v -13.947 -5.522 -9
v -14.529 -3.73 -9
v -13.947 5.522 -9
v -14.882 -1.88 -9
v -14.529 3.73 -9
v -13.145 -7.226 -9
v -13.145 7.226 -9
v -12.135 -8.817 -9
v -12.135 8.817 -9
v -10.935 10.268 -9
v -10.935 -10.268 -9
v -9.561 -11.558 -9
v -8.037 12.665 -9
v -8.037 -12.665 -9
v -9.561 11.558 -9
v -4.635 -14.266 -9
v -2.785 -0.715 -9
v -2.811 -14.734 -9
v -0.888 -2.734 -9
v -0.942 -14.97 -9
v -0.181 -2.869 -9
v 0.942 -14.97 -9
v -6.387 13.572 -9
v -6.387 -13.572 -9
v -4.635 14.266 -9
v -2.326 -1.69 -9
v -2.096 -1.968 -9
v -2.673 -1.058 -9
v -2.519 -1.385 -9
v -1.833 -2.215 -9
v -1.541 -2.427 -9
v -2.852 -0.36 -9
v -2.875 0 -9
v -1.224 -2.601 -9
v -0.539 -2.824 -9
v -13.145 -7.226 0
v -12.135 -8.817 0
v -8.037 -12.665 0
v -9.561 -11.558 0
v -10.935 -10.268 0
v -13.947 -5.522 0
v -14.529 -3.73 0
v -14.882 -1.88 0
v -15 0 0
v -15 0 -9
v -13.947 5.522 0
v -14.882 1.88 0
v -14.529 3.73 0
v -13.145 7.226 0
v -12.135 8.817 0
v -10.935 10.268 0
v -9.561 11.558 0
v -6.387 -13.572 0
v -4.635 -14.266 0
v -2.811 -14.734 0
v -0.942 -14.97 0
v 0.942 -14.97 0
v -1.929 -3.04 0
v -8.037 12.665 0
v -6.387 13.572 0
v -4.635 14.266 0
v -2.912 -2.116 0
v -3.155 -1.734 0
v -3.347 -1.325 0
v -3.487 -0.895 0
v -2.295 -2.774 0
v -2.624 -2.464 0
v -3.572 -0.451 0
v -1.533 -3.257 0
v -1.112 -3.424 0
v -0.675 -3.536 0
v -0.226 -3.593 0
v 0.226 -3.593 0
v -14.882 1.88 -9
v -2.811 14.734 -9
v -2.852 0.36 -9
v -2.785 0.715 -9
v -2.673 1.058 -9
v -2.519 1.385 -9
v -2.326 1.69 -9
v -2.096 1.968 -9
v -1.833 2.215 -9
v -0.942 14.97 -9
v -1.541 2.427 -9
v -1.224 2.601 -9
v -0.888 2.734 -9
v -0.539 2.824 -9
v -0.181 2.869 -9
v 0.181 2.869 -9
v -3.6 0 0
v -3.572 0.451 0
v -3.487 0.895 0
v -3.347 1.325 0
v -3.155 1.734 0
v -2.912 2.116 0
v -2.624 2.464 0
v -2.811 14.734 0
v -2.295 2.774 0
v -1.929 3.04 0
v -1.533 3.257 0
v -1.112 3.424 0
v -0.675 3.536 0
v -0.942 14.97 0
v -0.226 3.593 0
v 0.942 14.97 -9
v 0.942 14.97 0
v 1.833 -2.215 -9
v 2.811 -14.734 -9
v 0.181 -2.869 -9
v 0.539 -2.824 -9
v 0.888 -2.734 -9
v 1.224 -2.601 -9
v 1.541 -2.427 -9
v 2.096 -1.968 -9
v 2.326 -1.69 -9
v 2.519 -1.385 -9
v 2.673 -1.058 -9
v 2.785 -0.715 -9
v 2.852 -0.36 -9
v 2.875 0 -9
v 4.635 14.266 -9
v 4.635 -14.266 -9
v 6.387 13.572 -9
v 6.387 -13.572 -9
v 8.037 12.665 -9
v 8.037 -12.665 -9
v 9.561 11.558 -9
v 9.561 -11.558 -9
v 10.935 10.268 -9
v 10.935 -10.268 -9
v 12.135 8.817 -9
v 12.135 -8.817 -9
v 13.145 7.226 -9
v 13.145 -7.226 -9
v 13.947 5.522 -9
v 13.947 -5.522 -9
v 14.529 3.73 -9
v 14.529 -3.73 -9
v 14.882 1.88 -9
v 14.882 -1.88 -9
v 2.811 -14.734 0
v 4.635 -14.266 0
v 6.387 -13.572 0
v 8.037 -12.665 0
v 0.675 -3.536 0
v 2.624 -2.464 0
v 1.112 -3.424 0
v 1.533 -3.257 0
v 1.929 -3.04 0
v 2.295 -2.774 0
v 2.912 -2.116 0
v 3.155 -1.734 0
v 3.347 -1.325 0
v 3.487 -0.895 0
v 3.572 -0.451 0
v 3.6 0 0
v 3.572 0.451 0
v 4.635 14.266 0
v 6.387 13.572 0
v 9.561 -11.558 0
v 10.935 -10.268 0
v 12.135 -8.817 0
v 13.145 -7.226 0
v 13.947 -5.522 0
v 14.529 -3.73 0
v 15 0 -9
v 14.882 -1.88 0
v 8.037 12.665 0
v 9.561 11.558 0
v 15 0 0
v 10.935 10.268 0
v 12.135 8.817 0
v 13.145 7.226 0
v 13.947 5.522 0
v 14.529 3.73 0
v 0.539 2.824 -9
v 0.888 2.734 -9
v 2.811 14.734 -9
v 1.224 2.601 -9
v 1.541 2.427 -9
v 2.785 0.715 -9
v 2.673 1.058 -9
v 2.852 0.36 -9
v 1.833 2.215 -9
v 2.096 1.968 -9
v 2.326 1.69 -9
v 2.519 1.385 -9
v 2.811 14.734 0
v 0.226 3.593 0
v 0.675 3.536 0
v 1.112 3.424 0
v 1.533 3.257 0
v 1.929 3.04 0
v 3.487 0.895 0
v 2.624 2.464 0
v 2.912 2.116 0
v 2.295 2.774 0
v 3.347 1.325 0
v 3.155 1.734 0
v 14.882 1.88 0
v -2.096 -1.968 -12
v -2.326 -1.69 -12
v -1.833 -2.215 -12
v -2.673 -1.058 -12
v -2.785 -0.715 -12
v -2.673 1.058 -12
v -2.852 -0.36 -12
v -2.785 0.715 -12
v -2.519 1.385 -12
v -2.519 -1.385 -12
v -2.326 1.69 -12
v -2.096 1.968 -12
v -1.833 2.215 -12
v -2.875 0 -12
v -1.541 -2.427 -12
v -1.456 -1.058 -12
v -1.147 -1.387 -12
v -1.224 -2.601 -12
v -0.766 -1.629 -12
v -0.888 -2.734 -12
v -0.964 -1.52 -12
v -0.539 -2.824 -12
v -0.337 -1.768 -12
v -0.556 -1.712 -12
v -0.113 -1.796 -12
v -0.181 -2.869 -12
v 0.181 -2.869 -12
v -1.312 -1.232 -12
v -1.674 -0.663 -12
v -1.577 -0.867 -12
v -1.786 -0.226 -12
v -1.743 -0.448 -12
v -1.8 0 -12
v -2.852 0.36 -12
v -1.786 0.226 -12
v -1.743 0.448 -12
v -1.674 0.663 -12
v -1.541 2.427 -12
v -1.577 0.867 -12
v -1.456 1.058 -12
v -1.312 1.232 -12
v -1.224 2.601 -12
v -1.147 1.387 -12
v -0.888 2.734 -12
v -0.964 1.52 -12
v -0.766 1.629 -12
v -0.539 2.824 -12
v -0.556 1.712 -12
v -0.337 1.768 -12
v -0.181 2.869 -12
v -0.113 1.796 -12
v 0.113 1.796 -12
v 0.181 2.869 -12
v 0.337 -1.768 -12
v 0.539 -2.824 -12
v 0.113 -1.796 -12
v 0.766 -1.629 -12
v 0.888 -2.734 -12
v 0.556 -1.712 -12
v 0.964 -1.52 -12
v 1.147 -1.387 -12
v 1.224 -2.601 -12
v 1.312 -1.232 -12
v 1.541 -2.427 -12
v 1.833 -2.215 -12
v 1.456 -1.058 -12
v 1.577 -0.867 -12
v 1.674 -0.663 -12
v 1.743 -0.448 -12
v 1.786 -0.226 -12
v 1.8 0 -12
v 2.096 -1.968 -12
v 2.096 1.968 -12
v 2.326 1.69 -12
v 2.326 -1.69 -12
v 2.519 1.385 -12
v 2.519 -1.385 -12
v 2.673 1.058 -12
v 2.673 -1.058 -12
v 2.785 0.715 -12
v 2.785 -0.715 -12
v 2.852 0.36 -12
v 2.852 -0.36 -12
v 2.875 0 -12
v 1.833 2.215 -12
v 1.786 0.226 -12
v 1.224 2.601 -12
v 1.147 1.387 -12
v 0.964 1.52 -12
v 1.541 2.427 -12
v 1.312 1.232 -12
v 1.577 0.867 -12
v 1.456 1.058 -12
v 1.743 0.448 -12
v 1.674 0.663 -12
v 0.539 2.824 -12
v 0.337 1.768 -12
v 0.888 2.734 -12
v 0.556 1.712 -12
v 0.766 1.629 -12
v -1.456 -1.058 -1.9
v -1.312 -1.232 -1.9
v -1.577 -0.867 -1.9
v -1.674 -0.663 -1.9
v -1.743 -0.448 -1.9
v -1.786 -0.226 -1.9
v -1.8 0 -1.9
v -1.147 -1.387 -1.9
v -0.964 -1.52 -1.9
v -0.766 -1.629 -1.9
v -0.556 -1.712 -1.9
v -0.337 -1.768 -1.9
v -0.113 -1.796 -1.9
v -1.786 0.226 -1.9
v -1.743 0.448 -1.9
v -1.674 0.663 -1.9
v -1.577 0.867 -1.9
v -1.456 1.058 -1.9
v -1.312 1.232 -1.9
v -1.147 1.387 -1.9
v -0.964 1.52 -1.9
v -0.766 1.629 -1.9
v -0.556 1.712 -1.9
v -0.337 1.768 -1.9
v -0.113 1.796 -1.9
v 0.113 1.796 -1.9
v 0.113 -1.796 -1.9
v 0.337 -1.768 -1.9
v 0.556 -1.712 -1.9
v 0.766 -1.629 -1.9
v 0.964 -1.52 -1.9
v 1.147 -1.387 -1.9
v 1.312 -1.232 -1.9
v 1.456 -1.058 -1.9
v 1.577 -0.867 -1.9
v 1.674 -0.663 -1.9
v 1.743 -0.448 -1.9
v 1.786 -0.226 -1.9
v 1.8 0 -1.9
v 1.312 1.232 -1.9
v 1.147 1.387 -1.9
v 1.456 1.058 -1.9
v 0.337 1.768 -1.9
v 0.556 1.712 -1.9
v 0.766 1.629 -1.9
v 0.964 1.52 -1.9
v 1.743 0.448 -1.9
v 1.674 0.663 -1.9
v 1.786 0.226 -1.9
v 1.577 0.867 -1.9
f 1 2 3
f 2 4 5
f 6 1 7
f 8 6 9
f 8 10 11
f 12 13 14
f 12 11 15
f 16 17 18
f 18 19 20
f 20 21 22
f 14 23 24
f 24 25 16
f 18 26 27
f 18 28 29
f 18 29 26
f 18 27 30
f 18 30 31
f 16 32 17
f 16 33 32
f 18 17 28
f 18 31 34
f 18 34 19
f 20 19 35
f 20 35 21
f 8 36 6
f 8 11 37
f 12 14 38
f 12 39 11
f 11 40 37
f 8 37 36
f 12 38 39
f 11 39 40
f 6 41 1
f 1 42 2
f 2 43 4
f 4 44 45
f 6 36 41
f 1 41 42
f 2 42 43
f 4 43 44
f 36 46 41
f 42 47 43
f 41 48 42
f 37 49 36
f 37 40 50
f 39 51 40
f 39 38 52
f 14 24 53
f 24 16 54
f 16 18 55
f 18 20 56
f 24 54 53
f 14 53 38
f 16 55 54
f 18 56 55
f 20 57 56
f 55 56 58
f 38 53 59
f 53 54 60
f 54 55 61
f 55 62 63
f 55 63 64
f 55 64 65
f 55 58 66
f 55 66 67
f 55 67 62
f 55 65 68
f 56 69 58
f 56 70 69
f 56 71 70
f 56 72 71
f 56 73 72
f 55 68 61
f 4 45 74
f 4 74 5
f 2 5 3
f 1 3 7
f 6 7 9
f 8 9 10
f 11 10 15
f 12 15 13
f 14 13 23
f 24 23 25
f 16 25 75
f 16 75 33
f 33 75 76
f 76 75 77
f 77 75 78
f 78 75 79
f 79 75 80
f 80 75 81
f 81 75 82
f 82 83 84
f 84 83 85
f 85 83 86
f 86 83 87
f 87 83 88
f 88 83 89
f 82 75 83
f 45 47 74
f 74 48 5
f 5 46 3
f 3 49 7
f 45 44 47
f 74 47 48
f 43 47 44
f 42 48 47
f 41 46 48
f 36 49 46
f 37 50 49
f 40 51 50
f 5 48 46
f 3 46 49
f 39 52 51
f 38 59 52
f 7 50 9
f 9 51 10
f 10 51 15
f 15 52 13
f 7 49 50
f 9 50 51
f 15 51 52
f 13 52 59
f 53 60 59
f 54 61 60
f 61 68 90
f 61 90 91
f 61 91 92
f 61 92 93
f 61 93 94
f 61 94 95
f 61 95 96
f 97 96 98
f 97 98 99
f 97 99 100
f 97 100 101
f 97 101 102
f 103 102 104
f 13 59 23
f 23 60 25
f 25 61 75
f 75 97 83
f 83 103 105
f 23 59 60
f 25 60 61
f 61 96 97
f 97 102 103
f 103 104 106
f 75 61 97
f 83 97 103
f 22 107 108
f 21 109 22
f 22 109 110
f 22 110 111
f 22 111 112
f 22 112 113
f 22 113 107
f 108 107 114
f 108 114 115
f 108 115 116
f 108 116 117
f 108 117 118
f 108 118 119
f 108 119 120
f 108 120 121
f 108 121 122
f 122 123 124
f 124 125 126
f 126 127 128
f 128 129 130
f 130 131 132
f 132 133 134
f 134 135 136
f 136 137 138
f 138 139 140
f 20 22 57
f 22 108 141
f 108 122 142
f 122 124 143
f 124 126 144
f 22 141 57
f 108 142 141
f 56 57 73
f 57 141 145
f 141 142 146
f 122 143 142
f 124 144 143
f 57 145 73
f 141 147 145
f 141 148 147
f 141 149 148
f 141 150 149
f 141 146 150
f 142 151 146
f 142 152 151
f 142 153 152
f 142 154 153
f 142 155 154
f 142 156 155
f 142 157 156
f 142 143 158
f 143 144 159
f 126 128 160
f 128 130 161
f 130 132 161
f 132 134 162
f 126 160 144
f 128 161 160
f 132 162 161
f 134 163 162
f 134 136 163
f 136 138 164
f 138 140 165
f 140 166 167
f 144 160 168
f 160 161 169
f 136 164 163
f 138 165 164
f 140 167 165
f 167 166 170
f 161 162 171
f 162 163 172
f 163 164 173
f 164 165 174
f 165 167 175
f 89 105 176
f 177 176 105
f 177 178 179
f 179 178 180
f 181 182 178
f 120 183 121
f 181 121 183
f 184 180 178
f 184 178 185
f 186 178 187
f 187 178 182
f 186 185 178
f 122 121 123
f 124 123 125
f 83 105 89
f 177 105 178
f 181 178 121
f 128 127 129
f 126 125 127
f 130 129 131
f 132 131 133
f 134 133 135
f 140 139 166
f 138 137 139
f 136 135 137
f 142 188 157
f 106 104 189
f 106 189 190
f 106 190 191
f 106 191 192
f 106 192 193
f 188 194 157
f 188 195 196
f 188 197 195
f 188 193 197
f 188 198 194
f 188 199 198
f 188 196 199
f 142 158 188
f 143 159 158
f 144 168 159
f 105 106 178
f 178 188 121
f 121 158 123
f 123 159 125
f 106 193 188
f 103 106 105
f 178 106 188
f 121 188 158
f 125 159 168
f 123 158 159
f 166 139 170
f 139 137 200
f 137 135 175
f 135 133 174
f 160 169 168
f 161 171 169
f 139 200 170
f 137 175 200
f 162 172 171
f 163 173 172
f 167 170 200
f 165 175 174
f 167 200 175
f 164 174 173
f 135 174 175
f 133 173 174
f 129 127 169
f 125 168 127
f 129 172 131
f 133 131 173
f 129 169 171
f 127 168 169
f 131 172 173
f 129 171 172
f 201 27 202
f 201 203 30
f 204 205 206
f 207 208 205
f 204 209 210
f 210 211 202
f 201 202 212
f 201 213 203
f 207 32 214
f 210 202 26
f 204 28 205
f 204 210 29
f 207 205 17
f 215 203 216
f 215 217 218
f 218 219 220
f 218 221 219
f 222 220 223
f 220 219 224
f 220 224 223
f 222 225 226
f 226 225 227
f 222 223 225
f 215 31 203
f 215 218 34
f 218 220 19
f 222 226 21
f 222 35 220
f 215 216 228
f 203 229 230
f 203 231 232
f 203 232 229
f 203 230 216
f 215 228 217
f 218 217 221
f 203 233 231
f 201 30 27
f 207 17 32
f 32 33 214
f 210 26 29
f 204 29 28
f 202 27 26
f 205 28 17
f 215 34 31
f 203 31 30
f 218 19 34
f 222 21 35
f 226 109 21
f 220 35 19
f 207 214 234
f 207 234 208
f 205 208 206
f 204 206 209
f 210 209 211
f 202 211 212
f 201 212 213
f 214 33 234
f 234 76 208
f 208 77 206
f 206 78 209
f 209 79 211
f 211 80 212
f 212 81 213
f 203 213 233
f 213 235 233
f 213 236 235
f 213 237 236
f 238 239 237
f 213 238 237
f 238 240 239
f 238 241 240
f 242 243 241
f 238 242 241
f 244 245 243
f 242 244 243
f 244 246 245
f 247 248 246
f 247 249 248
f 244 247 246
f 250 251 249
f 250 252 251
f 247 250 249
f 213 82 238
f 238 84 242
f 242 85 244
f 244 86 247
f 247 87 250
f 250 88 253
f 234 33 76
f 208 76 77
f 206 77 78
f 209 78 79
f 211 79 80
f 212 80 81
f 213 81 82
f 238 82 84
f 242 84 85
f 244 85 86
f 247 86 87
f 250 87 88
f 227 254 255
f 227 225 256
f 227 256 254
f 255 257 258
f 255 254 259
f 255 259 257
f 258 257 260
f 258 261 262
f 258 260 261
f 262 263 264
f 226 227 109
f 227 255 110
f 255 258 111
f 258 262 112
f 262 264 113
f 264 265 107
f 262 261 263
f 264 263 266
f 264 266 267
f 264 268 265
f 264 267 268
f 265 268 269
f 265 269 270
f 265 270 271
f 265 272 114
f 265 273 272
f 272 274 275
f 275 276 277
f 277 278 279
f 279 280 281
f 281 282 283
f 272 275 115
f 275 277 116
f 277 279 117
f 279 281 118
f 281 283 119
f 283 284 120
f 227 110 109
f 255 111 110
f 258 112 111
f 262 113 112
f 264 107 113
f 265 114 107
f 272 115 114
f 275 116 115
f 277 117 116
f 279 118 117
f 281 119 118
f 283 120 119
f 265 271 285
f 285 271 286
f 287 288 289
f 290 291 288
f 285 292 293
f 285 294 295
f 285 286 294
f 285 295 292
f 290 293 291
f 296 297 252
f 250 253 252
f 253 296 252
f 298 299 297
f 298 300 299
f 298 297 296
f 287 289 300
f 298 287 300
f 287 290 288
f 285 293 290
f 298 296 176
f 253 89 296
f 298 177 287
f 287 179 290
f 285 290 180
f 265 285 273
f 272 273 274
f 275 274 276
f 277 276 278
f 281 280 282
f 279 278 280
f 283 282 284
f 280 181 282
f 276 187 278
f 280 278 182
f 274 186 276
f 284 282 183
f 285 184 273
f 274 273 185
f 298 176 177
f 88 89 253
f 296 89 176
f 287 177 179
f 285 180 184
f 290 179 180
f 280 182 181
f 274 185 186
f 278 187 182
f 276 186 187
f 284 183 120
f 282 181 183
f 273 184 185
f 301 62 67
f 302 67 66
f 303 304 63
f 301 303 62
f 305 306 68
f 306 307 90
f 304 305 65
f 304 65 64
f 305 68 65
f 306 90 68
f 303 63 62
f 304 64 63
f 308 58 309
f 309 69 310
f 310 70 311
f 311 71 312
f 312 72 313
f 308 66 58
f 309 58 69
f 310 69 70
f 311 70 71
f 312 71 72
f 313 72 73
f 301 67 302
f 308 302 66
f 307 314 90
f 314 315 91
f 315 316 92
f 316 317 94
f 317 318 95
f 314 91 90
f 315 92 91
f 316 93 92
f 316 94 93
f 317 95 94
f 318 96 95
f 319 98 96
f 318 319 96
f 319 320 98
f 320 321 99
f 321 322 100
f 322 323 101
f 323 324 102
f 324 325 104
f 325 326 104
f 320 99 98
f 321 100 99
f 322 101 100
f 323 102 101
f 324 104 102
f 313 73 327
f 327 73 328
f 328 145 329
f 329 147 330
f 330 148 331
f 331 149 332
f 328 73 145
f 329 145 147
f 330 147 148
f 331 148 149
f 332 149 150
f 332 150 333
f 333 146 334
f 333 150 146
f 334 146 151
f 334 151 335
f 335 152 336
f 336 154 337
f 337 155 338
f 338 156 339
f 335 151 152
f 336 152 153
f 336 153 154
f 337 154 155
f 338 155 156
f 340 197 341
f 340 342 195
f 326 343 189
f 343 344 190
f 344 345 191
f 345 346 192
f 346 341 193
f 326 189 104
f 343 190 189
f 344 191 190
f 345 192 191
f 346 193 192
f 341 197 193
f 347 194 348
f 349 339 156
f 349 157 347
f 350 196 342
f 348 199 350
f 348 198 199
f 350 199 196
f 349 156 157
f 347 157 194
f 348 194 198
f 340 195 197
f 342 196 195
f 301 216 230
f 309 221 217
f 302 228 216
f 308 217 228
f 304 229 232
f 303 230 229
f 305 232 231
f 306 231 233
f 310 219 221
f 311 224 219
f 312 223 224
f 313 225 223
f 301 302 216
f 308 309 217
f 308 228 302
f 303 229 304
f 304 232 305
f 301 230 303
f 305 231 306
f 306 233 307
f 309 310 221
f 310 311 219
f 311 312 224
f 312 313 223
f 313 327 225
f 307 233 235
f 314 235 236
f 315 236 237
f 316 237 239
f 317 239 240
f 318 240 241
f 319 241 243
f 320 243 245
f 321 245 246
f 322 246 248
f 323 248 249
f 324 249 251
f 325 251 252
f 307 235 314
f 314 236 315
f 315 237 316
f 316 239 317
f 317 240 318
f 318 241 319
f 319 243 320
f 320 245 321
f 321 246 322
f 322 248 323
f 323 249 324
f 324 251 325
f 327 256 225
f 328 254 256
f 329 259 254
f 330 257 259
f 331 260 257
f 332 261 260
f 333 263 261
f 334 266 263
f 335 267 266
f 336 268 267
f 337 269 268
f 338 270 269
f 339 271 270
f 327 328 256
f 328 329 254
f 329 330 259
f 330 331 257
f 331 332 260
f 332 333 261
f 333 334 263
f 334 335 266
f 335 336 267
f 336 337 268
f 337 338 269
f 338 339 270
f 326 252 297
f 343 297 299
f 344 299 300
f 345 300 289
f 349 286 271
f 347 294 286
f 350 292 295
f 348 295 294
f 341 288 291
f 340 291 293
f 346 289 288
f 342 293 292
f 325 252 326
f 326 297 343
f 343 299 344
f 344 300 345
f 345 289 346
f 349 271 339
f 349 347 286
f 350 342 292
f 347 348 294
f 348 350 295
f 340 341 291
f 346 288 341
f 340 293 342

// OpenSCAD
$fn = 50;

difference() {
	union() {
		translate(v = [0, 0, -9.0]) {
			cylinder(h = 9, r = 15.0);
		}
		#translate(v = [0, 0, -12.0]) {
			cylinder(h = 12, r = 2.875);
		}
	}
	union() {
		translate(v = [0, 0, 0]) {
			rotate(a = [0, 0, 0]) {
				difference() {
					union() {
						translate(v = [0, 0, -12.0]) {
							cylinder(h = 12, r = 1.5);
						}
						translate(v = [0, 0, -1.9]) {
							cylinder(h = 1.9, r1 = 1.8, r2 = 3.6);
						}
						translate(v = [0, 0, -12.0]) {
							cylinder(h = 12, r = 1.8);
						}
						translate(v = [0, 0, -12.0]) {
							cylinder(h = 12, r = 1.5);
						}
					}
					union();
				}
			}
		}
	}
}
